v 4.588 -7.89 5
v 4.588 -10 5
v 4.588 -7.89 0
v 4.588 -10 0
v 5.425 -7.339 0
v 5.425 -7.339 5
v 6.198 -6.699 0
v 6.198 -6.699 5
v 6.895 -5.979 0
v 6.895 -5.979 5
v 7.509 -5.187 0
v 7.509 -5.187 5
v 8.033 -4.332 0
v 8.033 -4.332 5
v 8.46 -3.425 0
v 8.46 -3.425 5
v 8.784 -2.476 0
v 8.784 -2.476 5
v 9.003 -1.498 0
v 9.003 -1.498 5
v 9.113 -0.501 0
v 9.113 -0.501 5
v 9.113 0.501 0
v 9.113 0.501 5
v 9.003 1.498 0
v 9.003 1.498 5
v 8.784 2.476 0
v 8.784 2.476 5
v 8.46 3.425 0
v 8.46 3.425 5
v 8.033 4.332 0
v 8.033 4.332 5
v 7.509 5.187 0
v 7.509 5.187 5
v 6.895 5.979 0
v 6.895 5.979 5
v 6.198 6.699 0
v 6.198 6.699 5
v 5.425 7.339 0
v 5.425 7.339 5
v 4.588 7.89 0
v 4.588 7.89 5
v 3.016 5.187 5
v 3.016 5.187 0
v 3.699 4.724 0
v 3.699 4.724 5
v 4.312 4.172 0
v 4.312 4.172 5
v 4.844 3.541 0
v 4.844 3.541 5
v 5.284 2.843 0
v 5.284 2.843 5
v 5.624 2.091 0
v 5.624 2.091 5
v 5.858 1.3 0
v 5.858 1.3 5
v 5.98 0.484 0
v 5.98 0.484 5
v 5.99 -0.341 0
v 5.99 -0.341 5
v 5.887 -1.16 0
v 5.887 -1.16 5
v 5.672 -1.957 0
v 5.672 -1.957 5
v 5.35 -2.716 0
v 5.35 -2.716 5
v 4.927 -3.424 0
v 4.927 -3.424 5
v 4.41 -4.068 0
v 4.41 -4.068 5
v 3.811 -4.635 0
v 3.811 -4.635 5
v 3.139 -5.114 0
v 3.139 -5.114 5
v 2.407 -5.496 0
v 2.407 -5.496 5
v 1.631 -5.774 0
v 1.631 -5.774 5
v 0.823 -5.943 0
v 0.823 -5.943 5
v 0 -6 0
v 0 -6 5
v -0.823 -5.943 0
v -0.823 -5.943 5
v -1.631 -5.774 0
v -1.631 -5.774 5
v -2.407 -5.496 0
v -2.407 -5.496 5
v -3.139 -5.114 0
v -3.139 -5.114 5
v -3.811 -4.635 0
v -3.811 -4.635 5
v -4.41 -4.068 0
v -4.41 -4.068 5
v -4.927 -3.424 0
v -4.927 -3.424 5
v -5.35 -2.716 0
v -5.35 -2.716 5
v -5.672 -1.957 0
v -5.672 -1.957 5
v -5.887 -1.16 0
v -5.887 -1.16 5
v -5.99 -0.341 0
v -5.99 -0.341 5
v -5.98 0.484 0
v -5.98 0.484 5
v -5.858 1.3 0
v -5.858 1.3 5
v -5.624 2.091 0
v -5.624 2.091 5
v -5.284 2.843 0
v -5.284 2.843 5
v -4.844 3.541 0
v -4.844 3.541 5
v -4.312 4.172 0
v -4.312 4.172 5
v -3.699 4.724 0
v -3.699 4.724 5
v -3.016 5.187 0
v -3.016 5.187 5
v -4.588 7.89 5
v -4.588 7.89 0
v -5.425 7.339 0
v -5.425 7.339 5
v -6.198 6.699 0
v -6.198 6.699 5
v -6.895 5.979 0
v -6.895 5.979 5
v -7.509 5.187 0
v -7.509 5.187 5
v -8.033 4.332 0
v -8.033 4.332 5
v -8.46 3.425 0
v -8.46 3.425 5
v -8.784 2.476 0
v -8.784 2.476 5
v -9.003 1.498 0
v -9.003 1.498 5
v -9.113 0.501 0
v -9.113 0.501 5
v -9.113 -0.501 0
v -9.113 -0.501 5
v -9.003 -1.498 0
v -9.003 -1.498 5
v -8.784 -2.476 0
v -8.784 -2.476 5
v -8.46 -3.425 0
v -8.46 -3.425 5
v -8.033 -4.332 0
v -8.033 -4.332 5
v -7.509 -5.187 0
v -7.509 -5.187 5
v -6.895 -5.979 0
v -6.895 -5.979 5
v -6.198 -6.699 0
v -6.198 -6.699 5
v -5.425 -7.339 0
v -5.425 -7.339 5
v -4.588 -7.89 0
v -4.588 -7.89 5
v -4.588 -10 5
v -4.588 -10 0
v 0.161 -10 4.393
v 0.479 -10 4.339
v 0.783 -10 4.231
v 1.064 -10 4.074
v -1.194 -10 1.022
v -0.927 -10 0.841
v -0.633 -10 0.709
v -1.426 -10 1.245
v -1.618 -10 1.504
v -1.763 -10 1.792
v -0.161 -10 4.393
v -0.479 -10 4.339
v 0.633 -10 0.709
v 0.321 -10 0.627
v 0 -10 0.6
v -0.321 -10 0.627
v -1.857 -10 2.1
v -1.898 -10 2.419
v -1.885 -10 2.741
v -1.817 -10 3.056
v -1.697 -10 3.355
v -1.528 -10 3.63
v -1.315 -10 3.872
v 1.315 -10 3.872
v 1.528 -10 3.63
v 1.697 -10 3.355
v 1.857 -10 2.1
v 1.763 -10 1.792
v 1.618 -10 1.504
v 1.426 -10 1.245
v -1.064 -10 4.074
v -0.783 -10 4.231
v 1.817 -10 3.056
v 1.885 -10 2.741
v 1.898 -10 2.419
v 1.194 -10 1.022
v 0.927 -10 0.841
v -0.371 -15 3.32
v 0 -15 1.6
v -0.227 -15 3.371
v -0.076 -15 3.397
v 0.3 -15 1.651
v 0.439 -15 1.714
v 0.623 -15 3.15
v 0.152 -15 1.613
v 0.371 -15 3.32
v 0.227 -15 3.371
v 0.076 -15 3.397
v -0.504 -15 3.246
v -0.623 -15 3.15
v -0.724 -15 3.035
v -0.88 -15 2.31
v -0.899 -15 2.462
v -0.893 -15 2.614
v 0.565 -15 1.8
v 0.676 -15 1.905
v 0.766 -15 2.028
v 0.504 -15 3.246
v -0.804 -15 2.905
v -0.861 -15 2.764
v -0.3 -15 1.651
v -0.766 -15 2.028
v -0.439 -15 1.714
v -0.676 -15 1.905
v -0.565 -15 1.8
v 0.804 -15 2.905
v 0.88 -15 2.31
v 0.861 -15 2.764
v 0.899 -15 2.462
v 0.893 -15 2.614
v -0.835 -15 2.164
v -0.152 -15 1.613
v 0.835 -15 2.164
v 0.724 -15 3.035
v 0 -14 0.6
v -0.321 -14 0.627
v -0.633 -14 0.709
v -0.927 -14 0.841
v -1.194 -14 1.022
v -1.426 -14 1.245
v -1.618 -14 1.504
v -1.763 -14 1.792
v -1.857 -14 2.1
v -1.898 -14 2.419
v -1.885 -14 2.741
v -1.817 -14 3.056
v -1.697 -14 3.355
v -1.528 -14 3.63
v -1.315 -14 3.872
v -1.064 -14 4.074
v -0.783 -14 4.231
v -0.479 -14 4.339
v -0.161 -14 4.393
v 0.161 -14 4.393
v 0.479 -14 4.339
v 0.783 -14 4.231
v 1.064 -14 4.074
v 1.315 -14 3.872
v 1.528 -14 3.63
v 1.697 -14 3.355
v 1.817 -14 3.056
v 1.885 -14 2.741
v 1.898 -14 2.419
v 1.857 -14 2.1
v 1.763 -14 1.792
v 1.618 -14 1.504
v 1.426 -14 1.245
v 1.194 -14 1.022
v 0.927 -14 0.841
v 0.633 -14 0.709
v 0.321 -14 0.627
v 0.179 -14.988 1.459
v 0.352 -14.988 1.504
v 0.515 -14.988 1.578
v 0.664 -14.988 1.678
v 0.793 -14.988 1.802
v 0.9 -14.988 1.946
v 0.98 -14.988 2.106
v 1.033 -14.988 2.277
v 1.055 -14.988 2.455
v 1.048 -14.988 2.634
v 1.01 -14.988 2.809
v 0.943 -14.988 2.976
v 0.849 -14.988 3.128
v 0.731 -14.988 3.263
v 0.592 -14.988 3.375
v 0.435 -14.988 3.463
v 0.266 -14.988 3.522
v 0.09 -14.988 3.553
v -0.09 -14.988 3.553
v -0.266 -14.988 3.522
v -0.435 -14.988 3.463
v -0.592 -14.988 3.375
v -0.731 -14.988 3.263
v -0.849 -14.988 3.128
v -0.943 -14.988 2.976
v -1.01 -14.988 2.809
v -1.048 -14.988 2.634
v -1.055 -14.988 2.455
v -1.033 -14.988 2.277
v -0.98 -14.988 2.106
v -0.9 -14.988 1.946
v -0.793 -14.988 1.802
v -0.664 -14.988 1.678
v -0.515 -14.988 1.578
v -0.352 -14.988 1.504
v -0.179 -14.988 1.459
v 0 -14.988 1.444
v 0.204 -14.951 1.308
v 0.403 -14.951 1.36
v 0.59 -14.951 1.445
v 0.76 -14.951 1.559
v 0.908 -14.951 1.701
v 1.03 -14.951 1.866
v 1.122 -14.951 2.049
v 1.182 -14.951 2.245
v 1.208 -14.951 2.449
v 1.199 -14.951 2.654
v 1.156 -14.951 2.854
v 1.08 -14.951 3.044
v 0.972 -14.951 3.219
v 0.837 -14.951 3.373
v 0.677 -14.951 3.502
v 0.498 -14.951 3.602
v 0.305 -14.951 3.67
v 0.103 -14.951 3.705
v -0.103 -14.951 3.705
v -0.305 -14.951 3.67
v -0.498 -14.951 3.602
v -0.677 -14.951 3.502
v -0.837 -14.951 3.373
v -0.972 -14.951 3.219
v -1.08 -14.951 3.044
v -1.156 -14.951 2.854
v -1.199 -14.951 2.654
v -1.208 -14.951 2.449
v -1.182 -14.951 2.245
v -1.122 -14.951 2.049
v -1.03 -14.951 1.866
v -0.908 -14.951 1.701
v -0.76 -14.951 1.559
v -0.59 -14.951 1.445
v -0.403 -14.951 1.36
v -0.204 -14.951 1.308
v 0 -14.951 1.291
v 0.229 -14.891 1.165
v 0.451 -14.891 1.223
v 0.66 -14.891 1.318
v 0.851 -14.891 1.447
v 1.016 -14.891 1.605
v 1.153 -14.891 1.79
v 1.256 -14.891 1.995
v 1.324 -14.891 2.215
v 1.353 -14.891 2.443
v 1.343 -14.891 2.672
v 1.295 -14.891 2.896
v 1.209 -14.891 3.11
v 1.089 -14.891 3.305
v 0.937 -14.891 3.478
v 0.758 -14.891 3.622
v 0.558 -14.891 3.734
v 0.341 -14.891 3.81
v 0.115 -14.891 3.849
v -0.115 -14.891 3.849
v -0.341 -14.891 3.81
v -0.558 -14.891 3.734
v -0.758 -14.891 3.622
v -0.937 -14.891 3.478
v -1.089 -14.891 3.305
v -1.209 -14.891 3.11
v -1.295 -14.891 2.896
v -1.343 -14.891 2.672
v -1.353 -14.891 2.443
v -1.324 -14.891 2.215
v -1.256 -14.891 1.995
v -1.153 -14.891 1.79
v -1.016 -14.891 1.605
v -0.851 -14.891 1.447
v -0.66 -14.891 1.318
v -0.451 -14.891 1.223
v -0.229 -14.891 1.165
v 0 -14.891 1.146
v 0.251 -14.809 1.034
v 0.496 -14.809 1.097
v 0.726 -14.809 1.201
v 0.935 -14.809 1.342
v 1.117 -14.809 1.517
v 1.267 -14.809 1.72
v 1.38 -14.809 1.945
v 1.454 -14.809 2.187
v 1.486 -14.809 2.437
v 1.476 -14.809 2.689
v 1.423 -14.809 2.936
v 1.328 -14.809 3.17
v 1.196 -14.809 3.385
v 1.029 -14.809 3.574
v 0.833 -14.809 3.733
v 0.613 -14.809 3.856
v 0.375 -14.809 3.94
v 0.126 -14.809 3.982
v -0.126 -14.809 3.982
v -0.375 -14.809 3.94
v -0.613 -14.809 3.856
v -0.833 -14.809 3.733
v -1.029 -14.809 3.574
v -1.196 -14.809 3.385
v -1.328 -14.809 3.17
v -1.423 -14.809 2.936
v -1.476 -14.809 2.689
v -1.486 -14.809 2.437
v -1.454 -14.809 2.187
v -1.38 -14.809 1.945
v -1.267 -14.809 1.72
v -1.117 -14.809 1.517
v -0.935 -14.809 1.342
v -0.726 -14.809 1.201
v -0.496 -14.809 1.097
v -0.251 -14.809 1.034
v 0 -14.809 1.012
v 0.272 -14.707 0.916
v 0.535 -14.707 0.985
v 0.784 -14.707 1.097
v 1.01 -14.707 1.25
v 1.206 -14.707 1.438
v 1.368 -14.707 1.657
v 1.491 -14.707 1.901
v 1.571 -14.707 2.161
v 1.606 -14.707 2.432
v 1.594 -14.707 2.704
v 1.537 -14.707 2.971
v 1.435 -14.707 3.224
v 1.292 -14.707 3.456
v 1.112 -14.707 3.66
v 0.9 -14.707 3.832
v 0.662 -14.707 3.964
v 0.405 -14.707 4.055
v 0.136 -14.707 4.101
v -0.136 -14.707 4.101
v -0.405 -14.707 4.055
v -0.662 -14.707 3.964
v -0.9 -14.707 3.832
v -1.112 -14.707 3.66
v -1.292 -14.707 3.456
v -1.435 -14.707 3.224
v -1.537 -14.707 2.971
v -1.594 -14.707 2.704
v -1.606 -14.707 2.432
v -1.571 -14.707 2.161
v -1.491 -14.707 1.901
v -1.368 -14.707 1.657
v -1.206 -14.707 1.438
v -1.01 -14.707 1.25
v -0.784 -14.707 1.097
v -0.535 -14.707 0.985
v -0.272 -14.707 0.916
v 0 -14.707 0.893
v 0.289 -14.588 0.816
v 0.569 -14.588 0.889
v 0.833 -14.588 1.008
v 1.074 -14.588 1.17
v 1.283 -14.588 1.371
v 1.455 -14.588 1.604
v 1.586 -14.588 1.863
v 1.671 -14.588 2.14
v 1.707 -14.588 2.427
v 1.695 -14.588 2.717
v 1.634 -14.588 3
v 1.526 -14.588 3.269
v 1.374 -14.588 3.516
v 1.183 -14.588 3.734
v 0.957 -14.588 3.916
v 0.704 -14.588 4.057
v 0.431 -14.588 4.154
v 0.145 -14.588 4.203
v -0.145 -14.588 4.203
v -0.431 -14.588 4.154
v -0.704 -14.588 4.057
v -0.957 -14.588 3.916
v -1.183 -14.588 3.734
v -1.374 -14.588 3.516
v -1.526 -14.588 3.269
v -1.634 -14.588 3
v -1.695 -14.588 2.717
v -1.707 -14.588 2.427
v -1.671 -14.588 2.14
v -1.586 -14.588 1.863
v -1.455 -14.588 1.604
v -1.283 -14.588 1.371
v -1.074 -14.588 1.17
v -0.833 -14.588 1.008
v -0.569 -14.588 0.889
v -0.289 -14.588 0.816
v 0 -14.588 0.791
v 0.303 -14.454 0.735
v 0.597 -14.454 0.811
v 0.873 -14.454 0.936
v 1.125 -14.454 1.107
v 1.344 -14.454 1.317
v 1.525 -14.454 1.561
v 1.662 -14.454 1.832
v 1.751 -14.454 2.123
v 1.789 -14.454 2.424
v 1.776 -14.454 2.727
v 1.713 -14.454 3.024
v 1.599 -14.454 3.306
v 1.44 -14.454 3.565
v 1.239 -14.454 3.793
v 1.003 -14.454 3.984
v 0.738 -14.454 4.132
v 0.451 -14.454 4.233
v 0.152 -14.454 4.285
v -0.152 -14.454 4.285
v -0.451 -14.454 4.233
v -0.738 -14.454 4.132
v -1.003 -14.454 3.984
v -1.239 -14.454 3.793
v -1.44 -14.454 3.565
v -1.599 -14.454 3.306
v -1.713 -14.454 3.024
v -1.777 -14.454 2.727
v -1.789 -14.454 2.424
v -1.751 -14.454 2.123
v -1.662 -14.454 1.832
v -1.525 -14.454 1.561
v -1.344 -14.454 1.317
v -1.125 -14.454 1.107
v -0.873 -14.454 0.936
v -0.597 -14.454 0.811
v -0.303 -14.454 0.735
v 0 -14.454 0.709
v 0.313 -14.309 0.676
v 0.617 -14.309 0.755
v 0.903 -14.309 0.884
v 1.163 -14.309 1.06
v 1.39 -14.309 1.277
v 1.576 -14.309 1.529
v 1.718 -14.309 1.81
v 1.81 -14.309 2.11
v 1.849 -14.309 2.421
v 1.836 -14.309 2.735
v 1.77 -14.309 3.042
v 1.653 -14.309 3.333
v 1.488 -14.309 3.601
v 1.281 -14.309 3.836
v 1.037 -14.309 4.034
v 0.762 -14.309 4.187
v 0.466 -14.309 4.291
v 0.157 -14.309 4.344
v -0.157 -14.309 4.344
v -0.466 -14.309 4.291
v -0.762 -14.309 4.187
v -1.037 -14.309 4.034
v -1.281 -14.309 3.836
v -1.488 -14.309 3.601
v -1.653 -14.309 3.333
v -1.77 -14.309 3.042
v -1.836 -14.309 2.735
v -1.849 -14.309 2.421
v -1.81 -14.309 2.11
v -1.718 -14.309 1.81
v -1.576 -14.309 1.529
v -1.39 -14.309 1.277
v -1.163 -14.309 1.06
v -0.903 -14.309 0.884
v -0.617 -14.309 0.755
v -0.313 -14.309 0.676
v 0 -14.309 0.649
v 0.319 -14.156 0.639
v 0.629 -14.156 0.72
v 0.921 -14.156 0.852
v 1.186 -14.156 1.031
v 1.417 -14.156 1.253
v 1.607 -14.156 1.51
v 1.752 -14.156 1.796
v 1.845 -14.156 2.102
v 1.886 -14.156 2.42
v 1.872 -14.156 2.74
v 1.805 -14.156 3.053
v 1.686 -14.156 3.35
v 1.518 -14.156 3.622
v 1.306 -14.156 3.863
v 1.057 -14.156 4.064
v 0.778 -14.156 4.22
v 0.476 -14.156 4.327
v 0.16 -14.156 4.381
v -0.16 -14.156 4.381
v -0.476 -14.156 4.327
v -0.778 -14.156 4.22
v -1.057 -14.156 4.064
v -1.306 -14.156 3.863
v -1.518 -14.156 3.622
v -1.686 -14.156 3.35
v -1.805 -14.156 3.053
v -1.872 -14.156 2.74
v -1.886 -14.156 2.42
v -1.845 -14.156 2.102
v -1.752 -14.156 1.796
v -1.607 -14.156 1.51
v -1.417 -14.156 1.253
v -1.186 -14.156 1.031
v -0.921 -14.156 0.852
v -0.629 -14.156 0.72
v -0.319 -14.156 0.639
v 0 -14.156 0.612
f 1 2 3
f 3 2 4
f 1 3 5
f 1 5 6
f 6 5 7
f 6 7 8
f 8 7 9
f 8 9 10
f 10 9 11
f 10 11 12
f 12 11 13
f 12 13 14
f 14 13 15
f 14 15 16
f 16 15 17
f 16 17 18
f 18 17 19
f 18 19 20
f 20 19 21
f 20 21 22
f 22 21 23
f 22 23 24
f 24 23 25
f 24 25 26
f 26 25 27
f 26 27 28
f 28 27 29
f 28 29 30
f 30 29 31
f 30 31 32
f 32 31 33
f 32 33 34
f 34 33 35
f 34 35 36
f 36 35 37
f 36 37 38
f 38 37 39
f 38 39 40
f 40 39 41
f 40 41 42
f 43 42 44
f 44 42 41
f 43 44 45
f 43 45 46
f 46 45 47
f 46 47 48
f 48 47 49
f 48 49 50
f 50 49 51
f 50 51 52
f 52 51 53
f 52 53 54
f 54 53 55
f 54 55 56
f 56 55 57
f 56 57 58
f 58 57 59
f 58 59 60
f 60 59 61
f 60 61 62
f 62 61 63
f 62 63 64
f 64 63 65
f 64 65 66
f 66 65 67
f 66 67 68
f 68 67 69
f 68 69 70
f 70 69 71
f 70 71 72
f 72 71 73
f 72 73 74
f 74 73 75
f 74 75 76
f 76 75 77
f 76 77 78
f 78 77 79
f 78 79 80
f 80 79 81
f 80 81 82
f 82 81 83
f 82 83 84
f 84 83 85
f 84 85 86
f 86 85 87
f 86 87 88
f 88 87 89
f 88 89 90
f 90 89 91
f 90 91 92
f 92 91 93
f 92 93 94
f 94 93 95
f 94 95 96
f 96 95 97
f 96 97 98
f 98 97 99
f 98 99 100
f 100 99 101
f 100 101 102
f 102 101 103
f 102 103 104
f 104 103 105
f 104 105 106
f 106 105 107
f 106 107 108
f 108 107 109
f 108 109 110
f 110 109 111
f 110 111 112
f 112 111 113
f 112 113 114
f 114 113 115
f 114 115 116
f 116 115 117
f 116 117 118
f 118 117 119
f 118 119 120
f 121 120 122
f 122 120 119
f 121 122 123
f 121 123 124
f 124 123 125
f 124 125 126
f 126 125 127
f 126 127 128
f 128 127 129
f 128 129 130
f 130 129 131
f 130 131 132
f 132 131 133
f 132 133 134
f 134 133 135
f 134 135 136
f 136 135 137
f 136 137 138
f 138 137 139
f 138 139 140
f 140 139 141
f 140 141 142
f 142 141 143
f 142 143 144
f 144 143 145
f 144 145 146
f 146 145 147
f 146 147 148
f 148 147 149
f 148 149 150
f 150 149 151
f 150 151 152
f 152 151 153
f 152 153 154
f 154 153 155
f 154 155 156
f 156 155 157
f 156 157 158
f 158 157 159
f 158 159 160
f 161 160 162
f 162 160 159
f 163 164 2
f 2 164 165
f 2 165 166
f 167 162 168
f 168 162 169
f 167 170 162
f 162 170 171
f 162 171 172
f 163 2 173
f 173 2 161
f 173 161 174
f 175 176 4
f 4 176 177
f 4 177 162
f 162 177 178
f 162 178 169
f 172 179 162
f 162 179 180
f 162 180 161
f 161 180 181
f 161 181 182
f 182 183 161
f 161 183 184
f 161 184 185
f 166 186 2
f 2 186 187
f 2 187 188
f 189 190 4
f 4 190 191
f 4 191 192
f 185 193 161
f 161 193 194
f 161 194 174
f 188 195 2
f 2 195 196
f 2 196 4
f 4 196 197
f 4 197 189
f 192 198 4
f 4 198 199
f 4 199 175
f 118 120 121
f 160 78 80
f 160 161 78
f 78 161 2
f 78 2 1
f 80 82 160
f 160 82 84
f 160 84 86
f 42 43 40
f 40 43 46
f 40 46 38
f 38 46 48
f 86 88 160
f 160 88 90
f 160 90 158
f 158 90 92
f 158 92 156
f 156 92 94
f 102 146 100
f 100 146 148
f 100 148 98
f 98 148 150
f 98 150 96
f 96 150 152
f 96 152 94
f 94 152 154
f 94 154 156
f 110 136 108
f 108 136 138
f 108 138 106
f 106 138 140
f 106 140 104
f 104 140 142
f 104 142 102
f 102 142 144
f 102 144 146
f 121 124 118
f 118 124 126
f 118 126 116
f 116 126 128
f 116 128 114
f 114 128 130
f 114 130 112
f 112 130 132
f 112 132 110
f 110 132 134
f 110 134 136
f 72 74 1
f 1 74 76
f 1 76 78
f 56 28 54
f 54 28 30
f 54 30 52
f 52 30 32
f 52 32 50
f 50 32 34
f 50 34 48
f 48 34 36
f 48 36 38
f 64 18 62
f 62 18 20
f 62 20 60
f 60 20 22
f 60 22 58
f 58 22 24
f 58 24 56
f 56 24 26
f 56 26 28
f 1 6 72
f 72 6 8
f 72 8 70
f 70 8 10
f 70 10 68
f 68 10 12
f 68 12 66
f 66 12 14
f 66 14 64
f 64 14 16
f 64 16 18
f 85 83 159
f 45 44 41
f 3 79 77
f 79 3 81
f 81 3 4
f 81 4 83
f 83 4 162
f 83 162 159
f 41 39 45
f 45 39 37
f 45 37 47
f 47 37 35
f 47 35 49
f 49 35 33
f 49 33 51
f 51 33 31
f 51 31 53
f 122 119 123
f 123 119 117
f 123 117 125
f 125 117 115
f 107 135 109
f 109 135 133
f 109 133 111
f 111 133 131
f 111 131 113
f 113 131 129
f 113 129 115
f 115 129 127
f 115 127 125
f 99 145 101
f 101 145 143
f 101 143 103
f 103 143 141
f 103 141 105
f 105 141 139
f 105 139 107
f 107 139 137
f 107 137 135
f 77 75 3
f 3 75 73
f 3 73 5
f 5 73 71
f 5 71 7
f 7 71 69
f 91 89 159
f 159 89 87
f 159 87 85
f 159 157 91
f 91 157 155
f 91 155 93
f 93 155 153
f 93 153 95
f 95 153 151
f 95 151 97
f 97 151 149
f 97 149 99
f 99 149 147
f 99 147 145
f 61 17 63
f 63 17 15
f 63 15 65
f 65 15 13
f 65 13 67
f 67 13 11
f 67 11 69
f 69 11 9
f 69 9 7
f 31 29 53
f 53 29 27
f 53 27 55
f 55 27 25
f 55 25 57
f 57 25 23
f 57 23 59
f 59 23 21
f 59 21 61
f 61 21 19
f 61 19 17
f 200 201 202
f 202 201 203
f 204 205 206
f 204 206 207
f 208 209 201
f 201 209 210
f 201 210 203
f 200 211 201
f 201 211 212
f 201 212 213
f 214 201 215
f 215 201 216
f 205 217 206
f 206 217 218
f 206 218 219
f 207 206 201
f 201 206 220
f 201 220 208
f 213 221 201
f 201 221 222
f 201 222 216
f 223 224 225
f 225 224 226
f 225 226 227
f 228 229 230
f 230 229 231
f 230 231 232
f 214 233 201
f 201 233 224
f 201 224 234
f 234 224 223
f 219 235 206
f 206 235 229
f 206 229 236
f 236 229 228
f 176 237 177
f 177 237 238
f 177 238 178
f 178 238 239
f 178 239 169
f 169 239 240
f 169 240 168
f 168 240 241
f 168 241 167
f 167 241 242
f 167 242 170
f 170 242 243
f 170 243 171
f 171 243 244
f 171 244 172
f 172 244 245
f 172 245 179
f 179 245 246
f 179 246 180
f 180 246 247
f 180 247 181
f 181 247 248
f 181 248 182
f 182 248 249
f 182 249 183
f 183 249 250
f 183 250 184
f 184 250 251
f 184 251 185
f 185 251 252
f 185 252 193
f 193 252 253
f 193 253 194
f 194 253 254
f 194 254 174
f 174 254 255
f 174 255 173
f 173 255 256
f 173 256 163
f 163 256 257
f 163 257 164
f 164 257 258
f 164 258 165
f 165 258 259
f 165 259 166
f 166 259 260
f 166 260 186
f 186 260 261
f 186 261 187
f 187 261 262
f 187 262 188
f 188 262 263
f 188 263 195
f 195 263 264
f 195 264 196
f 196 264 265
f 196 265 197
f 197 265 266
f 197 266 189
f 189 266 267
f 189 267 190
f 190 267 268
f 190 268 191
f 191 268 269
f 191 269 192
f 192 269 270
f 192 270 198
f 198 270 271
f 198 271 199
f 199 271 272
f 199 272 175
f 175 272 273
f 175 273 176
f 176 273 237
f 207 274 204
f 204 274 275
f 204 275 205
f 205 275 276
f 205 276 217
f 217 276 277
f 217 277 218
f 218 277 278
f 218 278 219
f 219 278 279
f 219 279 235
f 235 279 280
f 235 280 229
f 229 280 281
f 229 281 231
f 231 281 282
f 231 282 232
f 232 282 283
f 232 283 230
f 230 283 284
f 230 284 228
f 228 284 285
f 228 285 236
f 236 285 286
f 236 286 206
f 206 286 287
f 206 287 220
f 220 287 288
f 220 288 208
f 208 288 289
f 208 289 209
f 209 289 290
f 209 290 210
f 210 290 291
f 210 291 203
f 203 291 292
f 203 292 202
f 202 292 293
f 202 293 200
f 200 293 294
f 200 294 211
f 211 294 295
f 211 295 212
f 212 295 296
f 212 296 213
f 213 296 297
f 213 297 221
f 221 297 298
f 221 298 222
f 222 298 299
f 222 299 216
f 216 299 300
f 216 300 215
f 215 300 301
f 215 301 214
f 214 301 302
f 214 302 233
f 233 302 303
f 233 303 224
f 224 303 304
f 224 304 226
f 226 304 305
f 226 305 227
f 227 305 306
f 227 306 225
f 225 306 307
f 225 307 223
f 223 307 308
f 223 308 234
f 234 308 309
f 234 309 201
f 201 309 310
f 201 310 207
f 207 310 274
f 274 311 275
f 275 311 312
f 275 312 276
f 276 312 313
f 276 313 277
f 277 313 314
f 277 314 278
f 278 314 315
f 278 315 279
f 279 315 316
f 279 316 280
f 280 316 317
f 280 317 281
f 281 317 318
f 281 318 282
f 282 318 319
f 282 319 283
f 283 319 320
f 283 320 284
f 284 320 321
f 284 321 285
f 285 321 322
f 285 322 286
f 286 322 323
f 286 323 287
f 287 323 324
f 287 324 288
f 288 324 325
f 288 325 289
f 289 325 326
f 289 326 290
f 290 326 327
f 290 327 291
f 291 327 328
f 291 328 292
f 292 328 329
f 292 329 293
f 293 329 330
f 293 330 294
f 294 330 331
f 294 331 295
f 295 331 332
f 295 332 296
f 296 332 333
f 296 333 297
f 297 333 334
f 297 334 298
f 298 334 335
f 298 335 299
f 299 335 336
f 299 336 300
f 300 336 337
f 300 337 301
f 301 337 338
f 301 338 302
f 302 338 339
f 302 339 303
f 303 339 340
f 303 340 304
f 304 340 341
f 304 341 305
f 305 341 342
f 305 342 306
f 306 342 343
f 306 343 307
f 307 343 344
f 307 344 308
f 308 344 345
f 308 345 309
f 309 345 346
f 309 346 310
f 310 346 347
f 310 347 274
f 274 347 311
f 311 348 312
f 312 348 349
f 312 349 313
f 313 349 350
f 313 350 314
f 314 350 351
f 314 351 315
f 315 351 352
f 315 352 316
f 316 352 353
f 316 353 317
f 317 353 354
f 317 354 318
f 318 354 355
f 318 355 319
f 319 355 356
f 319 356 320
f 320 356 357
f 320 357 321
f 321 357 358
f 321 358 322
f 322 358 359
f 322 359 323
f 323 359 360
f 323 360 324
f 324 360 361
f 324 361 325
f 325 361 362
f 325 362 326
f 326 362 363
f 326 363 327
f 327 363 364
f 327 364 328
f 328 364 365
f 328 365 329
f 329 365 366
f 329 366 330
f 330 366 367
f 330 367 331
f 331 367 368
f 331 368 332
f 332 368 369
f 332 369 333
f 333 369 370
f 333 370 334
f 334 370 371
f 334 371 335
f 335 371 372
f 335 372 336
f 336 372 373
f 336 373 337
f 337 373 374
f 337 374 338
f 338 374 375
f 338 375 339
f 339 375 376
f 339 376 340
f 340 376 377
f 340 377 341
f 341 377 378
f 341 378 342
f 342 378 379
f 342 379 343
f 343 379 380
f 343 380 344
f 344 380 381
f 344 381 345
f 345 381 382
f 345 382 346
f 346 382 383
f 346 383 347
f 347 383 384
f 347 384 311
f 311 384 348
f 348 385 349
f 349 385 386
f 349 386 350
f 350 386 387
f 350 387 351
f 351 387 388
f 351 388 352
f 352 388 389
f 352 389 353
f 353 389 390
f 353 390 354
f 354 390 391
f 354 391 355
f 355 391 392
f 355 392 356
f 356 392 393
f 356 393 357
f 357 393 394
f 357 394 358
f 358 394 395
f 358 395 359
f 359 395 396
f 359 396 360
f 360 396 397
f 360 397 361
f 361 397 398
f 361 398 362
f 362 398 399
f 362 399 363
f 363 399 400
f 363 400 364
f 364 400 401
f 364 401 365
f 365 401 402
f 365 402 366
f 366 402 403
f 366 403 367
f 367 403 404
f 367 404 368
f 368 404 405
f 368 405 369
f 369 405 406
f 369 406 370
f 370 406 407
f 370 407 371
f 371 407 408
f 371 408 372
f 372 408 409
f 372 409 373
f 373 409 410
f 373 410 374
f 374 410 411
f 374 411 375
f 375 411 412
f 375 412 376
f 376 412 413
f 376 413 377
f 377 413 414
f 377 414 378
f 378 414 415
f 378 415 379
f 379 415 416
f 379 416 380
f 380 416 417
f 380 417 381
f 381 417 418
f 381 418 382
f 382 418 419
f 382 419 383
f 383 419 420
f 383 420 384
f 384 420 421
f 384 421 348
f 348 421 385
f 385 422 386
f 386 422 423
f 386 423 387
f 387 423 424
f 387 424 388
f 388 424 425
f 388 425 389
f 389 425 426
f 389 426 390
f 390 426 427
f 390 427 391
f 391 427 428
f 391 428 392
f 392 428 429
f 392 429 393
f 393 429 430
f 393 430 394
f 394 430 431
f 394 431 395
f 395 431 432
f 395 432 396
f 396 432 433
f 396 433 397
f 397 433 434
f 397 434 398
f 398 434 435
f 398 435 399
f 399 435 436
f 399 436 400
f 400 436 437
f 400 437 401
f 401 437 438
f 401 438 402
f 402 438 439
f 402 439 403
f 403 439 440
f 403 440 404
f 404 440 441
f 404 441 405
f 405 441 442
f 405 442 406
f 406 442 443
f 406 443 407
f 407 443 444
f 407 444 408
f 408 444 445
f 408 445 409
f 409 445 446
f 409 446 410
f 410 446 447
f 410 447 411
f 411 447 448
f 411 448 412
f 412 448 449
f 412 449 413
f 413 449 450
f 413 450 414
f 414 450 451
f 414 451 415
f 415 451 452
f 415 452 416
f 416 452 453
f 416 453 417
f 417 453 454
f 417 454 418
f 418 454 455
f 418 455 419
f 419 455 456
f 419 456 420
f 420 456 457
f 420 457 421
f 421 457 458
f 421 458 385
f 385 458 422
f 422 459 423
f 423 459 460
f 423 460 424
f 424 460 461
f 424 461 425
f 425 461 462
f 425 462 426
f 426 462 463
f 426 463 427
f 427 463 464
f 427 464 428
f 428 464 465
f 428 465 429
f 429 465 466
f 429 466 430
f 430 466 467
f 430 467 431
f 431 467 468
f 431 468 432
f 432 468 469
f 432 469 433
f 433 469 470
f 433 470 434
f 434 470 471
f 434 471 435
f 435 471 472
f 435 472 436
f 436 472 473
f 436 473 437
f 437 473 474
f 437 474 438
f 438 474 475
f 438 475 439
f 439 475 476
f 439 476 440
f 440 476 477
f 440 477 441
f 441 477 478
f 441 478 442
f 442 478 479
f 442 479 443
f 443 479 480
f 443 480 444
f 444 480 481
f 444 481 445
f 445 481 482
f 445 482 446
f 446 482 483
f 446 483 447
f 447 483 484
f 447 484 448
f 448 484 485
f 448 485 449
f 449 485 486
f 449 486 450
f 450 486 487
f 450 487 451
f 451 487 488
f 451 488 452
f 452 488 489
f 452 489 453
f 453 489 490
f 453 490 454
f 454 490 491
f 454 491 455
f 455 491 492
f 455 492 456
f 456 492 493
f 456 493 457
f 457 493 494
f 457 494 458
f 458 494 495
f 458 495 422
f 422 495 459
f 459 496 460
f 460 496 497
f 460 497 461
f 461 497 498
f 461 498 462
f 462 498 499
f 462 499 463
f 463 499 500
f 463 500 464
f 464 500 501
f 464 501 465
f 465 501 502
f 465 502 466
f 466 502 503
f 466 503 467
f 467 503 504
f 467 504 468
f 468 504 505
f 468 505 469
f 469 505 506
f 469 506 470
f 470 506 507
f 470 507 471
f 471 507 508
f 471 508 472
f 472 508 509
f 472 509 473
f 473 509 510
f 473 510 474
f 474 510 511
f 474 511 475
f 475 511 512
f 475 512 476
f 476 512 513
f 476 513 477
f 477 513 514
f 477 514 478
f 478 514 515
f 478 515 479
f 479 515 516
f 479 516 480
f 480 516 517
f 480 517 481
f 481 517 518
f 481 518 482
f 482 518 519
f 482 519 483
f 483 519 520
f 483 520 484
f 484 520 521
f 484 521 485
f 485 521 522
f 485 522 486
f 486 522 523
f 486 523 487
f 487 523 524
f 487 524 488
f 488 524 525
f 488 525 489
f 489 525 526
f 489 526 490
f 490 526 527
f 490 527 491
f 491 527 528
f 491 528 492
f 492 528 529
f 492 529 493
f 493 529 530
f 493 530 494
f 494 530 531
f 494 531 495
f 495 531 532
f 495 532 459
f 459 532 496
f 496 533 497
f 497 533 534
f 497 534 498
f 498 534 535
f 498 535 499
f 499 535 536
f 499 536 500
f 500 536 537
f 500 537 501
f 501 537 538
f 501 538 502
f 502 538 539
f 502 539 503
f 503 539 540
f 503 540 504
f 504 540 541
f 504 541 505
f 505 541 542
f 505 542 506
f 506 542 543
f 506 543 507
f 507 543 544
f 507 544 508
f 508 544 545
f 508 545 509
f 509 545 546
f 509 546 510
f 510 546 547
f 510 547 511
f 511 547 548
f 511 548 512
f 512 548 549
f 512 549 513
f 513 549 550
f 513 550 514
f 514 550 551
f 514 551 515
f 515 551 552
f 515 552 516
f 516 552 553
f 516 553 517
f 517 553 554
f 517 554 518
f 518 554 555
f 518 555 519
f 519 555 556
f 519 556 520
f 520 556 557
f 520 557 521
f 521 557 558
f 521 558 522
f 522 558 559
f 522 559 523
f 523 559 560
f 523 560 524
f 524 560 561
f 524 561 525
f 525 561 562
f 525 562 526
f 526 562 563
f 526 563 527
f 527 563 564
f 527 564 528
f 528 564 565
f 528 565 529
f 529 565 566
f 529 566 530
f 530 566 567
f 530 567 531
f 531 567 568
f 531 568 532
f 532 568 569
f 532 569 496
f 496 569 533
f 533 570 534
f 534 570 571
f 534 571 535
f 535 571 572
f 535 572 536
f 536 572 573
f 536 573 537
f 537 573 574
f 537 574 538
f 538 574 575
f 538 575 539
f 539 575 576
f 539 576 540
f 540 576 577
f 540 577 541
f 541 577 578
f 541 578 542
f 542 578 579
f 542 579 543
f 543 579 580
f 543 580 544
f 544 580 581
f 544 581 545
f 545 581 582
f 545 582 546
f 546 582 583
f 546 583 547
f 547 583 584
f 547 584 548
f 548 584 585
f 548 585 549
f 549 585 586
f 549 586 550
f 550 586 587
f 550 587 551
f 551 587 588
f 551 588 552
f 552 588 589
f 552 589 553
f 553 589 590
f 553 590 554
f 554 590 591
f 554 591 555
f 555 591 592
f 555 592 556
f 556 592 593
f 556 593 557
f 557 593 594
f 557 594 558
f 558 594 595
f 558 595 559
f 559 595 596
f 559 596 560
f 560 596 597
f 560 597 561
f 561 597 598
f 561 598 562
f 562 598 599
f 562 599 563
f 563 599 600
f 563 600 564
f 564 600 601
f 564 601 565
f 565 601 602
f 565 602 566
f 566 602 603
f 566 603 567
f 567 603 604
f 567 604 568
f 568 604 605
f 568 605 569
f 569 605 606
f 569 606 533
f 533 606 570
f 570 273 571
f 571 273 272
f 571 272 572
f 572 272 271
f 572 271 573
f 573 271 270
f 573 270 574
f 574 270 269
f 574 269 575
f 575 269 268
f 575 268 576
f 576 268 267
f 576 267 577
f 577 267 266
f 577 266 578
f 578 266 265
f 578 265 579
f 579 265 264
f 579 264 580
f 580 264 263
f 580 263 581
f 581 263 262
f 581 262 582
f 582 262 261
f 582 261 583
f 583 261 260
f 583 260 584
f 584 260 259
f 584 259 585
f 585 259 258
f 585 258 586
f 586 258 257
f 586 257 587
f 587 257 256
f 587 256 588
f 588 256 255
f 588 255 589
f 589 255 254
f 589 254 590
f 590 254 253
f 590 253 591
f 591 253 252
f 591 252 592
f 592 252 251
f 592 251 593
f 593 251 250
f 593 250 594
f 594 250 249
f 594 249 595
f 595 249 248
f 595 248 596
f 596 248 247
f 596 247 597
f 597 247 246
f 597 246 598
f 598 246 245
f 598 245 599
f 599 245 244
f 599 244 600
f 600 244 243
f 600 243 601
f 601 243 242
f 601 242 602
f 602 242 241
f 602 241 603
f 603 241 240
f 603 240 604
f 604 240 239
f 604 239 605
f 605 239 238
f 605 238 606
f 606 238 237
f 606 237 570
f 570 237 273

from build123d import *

# Parameters (mm, degrees)
RESSALTO_EXTRUS_O1_DEPTH     = 5
RESSALTO_EXTRUS_O2_START     = -15
RESSALTO_EXTRUS_O2_OUTLINE_R = 1.9
RESSALTO_EXTRUS_O2_DEPTH     = 5
FILETE5_R                    = 1


# Read off the part's stored shape, not the designer's step: Ressalto-extrusão2
with BuildPart() as part:
    # Esboço1 → Ressalto-extrusão1 (new body)
    with BuildSketch(Plane.XY):
        with BuildLine():
            Line((4.587776734, -7.88962854), (4.587776734, -10))
            Line((4.587776734, -10), (-4.587776734, -10))
            Line((-4.587776734, -10), (-4.587776734, -7.88962854))
            ThreePointArc((-4.587776734, -7.88962854), (-9.126551039, 0), (-4.587776734, 7.88962854))
            Line((-4.587776734, 7.88962854), (-3.01610765, 5.186819319))
            ThreePointArc((-3.01610765, 5.186819319), (0, -6), (3.01610765, 5.186819319))
            Line((3.01610765, 5.186819319), (4.587776734, 7.88962854))
            ThreePointArc((4.587776734, 7.88962854), (9.126551039, 0), (4.587776734, -7.88962854))
        make_face()
    extrude(amount=RESSALTO_EXTRUS_O1_DEPTH)

    # Ressalto-extrusão2 outline → Ressalto-extrusão2 (add)
    with BuildSketch(Plane(origin=(0, 0, 0), x_dir=(1, 0, 0), z_dir=(0, 1, 0)).offset(RESSALTO_EXTRUS_O2_START)):
        with Locations((0, -2.5)):
            Circle(RESSALTO_EXTRUS_O2_OUTLINE_R)
    extrude(amount=RESSALTO_EXTRUS_O2_DEPTH)

    # Filete5
    filete5_edges = [part.edges().sort_by_distance(p)[0] for p in [
        (-1.9, -15, 2.5),
    ]]
    fillet(filete5_edges, radius=FILETE5_R)


solid = part.part
